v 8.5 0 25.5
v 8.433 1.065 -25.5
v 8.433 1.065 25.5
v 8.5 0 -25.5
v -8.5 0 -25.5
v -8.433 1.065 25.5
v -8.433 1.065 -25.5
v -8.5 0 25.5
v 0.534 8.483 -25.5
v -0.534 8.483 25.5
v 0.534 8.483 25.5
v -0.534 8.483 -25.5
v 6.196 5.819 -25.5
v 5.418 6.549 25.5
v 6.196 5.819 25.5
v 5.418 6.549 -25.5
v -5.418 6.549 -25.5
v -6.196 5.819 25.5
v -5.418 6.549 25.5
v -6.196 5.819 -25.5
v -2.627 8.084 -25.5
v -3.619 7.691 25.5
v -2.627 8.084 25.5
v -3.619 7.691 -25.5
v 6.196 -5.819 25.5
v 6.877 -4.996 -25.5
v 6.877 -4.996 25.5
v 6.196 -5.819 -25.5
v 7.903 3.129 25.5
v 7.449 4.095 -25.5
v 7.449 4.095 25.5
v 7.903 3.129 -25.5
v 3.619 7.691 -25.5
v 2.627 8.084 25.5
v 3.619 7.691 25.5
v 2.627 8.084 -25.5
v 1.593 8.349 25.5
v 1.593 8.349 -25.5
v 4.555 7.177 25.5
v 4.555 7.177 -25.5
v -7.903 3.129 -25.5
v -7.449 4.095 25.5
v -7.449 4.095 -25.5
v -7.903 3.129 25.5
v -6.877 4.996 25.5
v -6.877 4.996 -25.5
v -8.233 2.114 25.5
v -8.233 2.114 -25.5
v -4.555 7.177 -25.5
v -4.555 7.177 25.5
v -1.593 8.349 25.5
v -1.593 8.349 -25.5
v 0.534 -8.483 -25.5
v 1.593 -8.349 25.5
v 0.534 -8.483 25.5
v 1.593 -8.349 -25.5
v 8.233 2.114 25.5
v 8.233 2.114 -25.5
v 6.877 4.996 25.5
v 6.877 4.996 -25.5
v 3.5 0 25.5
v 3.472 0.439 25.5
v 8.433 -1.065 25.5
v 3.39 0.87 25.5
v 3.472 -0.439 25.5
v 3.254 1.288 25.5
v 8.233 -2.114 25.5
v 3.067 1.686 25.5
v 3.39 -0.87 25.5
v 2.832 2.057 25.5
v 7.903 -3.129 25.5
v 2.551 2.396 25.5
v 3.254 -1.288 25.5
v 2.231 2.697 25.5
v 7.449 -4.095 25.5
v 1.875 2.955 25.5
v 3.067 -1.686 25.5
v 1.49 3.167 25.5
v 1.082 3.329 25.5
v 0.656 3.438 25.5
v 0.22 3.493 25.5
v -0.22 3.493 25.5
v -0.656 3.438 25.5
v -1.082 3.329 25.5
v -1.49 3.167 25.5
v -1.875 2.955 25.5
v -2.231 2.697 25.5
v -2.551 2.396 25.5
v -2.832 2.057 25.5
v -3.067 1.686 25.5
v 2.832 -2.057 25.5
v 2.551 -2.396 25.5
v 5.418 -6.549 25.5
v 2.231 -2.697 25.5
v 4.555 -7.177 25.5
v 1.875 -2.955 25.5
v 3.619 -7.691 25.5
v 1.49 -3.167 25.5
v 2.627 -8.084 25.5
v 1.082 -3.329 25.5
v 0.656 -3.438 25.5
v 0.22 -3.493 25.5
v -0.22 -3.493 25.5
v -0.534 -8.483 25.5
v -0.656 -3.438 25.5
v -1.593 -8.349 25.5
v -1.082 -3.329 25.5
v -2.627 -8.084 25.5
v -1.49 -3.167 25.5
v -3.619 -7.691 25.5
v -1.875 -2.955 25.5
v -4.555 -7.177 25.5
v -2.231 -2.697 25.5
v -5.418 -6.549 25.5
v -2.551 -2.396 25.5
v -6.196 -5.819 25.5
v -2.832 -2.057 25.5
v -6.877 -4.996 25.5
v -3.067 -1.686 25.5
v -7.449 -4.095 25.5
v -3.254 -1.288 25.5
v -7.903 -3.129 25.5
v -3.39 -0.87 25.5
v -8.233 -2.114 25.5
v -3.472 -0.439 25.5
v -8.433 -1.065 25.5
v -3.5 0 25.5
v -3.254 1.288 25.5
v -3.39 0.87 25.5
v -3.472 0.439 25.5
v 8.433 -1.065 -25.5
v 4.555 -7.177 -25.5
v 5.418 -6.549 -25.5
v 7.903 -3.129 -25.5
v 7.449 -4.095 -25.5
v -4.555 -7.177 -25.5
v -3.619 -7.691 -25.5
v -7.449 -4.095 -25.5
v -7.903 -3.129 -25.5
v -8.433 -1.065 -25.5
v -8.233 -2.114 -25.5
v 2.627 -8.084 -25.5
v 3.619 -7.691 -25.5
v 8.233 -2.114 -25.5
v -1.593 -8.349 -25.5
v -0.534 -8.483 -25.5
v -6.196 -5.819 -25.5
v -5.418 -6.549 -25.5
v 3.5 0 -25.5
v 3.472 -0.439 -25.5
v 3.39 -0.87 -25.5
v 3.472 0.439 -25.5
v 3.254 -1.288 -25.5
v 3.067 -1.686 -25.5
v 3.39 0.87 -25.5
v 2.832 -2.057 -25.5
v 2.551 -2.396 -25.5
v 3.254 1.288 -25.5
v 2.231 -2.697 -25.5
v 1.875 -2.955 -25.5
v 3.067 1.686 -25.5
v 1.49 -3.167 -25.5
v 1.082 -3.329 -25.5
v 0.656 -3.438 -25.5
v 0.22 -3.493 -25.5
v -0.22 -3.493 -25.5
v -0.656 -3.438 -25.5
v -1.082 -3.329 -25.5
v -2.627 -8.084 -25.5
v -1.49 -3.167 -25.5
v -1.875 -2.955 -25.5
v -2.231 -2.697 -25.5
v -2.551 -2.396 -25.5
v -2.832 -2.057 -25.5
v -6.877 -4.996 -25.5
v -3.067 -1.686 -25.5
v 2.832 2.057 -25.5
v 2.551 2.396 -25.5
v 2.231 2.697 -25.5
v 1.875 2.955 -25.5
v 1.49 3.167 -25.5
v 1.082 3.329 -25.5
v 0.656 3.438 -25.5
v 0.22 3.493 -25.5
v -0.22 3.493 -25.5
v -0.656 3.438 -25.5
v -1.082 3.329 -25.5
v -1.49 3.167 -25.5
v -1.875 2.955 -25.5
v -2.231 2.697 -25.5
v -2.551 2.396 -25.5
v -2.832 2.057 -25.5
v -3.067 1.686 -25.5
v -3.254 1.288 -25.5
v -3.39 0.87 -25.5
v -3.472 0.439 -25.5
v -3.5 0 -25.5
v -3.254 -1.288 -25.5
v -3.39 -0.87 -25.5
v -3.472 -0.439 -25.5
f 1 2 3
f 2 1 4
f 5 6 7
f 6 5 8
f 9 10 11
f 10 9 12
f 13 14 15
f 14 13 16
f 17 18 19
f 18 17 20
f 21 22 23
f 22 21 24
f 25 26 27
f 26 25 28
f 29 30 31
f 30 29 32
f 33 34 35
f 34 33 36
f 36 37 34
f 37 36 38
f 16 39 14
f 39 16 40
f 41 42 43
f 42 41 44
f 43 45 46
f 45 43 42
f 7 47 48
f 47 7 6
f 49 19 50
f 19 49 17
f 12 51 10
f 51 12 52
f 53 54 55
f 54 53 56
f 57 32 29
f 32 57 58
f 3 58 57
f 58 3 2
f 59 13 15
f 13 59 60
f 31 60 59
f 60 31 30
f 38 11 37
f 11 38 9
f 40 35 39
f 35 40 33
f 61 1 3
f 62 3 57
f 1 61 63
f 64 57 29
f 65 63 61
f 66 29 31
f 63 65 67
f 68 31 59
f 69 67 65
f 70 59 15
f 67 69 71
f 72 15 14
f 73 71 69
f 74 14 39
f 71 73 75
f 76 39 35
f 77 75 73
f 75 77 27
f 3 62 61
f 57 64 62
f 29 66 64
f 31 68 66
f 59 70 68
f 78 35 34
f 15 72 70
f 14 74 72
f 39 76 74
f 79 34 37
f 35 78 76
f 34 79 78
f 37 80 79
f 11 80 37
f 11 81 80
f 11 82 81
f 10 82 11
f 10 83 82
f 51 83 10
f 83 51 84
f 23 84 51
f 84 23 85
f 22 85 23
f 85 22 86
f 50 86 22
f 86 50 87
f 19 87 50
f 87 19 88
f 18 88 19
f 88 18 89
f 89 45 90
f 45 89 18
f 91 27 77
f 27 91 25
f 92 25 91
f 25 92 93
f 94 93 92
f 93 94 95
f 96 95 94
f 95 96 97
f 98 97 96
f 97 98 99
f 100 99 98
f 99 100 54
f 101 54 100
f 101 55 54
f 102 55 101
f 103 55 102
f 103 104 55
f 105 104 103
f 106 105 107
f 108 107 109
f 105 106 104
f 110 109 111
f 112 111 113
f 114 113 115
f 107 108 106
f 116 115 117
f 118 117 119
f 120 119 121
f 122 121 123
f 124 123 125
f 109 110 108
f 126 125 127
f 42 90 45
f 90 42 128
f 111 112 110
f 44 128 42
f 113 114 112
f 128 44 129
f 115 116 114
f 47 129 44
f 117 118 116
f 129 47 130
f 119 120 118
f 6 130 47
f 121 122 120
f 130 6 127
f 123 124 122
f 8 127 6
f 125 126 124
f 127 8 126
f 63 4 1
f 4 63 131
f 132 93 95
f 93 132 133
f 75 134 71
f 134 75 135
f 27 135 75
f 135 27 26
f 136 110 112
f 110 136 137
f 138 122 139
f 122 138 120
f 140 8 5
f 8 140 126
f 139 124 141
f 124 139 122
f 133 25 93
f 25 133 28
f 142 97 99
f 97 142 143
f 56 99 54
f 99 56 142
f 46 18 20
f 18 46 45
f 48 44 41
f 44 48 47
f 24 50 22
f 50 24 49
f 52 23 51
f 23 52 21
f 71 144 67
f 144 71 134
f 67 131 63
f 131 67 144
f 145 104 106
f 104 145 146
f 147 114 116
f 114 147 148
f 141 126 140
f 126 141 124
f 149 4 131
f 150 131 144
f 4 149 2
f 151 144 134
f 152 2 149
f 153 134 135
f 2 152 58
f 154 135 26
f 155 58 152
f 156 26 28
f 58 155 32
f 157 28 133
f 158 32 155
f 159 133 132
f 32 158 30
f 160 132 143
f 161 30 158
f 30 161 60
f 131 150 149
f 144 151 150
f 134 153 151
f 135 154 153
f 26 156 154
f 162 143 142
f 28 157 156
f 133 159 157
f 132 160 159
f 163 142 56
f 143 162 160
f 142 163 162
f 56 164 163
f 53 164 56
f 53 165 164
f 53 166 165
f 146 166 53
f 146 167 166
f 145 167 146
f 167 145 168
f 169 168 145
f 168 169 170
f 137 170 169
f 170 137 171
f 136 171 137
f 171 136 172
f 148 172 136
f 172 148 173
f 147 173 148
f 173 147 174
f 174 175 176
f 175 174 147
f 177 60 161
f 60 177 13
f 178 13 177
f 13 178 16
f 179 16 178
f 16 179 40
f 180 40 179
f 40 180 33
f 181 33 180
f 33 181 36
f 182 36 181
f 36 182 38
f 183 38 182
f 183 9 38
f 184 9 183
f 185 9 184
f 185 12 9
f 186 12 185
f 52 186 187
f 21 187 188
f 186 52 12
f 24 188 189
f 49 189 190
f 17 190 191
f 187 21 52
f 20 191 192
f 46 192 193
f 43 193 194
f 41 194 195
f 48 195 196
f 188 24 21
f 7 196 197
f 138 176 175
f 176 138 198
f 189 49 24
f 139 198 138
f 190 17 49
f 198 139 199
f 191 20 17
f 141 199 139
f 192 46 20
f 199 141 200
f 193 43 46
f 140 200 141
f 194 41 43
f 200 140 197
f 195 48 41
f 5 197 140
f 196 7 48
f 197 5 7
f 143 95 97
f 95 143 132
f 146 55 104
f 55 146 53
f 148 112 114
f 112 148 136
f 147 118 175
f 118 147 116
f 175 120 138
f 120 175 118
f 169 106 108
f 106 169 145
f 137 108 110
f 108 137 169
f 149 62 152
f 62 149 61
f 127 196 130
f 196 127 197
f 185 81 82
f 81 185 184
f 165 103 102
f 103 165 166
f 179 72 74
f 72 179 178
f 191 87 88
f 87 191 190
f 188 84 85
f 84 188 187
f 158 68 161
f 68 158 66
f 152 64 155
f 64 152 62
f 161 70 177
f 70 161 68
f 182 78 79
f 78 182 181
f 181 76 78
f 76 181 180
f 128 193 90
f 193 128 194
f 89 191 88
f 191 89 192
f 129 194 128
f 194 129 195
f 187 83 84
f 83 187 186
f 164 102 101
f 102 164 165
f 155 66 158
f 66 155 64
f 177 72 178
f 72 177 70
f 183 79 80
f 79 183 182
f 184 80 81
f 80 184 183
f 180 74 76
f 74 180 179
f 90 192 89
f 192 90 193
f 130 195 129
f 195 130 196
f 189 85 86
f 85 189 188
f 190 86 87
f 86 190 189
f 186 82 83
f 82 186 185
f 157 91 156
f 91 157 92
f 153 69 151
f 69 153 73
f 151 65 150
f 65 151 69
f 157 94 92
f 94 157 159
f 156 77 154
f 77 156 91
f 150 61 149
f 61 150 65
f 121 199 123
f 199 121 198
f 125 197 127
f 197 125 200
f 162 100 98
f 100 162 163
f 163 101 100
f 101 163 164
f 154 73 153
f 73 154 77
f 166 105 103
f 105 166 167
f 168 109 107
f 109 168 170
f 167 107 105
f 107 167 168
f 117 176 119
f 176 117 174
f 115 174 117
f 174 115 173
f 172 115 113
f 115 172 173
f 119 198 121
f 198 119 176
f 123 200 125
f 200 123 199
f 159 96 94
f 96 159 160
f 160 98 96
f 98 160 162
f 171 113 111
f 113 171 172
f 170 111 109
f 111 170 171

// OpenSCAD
$fn = 50;


difference() {
	union() {
		translate(v = [0, 0, -25.5000000000]) {
			cylinder(h = 51, r = 8.5000000000);
		}
	}
	union() {
		translate(v = [0, 0, -100.0000000000]) {
			cylinder(h = 200, r = 3.5000000000);
		}
	}
}
